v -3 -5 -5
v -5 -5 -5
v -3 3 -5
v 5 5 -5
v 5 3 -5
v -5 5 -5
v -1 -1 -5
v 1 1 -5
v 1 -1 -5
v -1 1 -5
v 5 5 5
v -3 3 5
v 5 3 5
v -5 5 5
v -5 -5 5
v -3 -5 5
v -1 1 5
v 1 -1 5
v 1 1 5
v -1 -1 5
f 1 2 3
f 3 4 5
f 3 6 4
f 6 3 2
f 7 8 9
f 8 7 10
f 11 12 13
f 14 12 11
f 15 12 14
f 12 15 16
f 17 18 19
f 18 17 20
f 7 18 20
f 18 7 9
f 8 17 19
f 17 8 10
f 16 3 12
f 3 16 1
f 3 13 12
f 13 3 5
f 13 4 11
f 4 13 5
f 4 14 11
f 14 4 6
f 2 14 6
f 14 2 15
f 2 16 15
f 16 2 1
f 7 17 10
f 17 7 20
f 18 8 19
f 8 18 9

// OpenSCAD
// Generated by SolidPython 1.1.3 on 2025-02-20 04:04:14
$fn=50;


intersection() {
	translate(v = [-5.0000000000, -5.0000000000, -5.0000000000]) {
		linear_extrude(height = 10) {
			polygon(points = [[0, 0], [2.0000000000, 0], [2.0000000000, 4.0000000000], [7.5000000000, 4.0000000000], [7.5000000000, 6.0000000000], [2.0000000000, 6.0000000000], [2.0000000000, 8.0000000000], [10, 8.0000000000], [10, 10], [0, 10]]);
		}
	}
	rotate(a = -90, v = [0, 0, 1]) {
		translate(v = [-5.0000000000, -5.0000000000, -5.0000000000]) {
			linear_extrude(height = 10) {
				polygon(points = [[0, 0], [10, 0], [10, 2.0000000000], [2.0000000000, 2.0000000000], [2.0000000000, 4.0000000000], [7.5000000000, 4.0000000000], [7.5000000000, 6.0000000000], [2.0000000000, 6.0000000000], [2.0000000000, 8.0000000000], [10, 8.0000000000], [10, 10], [0, 10]]);
			}
		}
	}
}
/***********************************************
*********      SolidPython code:      **********
************************************************
 
from solid import *
from solid.utils import *

import math
import matplotlib.pyplot as plt
import subprocess
import os

class Hole:
    def __init__(self, x, y, radius):
        """
        Hole defined by:
        :param x: x dimension for center point of the circle as a ratio of letter height
        :param y: y dimension for center point of the circle as a ratio of letter height
        :param radius: radius of circle as a ratio of letter height
        """
        self.x = x
        self.y = y
        self.radius = radius

class Letter3D:
    def __init__(self, name, outer_shape_points, height, holes=None):
        """
        3D Letter defined by:
        :param name: name of letter
        :param outer_shape_points: points defining the outer shape of the letter
        :param heigh: size of cube that letter fits inside
        :param holes: list of Holes
        """
        self.name = name
        self.outer_shape_points = outer_shape_points
        self.holes = holes if holes is None else []
        self.height = height


    def generate(self):
        shape = polygon(points=self.outer_shape_points)

        if self.holes:
            for hole in self.holes:
                circle_hole = circle(r=hole.radius*self.height)
                positioned_hole = translate([hole.x*self.height, hole.y*self.height])(circle_hole)
                shape = difference()(shape, positioned_hole)
        
        shape_3d = linear_extrude(height=self.height)(shape)
        shape_3d = translate([-self.height/2, -self.height/2, -self.height/2])(shape_3d)
        return shape_3d
    
    def render(self):
        scad_render_to_file(self.shape, f"output/{self.name}.scad", file_header='$fn=50;')
        subprocess.run(["C:\\Program Files\\OpenSCAD\\openscad.exe", "-o", f"output\\{self.name}.stl", f"output\\{self.name}.scad"])


class TwoLetter3D:
    def __init__(self, height, letterA, letterA_face, letterB=None, letterB_face=None):
        self.height = height
        self.letterA = letterA
        self.letterB = letterB
        self.letterA_face = letterA_face
        self.letterB_face = letterB_face

    def call_letter_generation(self, letter):
        letter = letter.upper()
        function_name = f"letter_{letter}"
        func = globals().get(function_name)
        if func is None:
            raise ValueError(f"No letter generation function defined for letter '{letter}'.")
        else:
            print(func)
        return func(self.height)
    
    def rotate_object(self, face, shape):
        face = face.lower()
        if face == "z":
            return shape
        if face == "x":
            return rotate(a=90, v=[0,1,0])(shape)
        if face == "y":
            return rotate(a=-90, v=[0,0,1])(shape)
        else:
            raise ValueError("Face must be one of 'x', 'y', or 'z'.")

    def render(self):
        if self.letterA:
            letterA3D = self.call_letter_generation(self.letterA)
            letterA3D = self.rotate_object(self.letterA_face, letterA3D)

        if self.letterB:
            letterB3D = self.call_letter_generation(self.letterB)
            letterB3D = self.rotate_object(self.letterB_face, letterB3D)
            combined = intersection()(letterA3D, letterB3D)
            file_name = self.letterA + self.letterB
            scad_render_to_file(combined, f"output/{file_name}.scad", file_header='$fn=50;')
            subprocess.run(["C:\\Program Files\\OpenSCAD\\openscad.exe", "-o", f"output\\{file_name}.stl", f"output\\{file_name}.scad"])
            return
        else:
            file_name = self.letterA
            scad_render_to_file(letterA3D, f"output/{file_name}.scad", file_header='$fn=50;')
            subprocess.run(["C:\\Program Files\\OpenSCAD\\openscad.exe", "-o", f"output\\{file_name}.stl", f"output\\{file_name}.scad"])
    
                

def arc_points(radius, start_angle, end_angle, center=[0,0], num_points=50):
    angles = [start_angle + i * (end_angle - start_angle) / (num_points - 1)
              for i in range(num_points)]
    points = [
        (center[0] + radius * math.cos(math.radians(angle)),
         center[1] + radius * math.sin(math.radians(angle)))
        for angle in angles
    ]
    return points

def letter_A(h):
    shape_points = [(0,0), (h/2, h), (h, 0), (5/6*h, 0), (2/3*h, 1/3*h), (1/3*h, 1/3*h), (h/6, 0)]
    holes = [Hole(1/2, 7/12, 1/6)]
    A = Letter3D("A", shape_points, h, holes)
    return A.generate()

def letter_B(h):
    top_arc_points = arc_points(h/4, 90, -90, center=[3/4*h, 3/4*h])
    bottom_arc_points = arc_points(h/4, 90, -90, center=[3/4*h, h/4])
    other_points = [(0,0),(0,h)]

    shape_points = top_arc_points + bottom_arc_points + other_points
    holes = [Hole(1/2, 3/4, 1/6), Hole(1/2, 1/4, 1/6)]
    B = Letter3D("B", shape_points, h, holes)
    return B.generate()

def letter_C(h):
    outer_arc_points = arc_points(h/2, 30, 330, center=[h/2,h/2])
    inner_arc_points = arc_points(h/4, 30, 330, center=[h/2,h/2])[::-1]
    shape_points = outer_arc_points + inner_arc_points
    # print(shape_points)
    C = Letter3D("C", shape_points, h)
    return C.generate()


def letter_D(h):
    outer_arc_points = arc_points(h/2, 90, -90, center= [h/2, h/2])
    shape_points = outer_arc_points + [(0,0), (0, h)]
    holes = [Hole(1/2, 1/2, 1/6)]
    D = Letter3D("D", shape_points, h, holes)
    return D.generate()

def letter_E(h):
    points = [(0,0), (h,0), (h,h/5), (h/5,h/5), (h/5,2/5*h), (3/4*h,2/5*h), (3/4*h,3/5*h), (h/5,3/5*h), (h/5,4/5*h), (h,4/5*h), (h,h), (0,h)]
    E = Letter3D("E", points, h)
    return E.generate()

def letter_F(h):
    points = [(0,0), (h/5,0), (h/5,2/5*h), (3/4*h,2/5*h), (3/4*h,3/5*h), (h/5,3/5*h), (h/5,4/5*h), (h,4/5*h), (h,h), (0,h)]
    F = Letter3D("F", points, h)
    return F.generate()

if __name__ == "__main__":
    os.makedirs("output", exist_ok=True)
    # Generate all combos
    letters = [chr(x) for x in range(ord('A'), ord('F') + 1)]
    for letter in letters:
        for other_letter in letters:
            shape = TwoLetter3D(10, letter, "z", other_letter, "y")
            shape.render()
 
 
************************************************/
